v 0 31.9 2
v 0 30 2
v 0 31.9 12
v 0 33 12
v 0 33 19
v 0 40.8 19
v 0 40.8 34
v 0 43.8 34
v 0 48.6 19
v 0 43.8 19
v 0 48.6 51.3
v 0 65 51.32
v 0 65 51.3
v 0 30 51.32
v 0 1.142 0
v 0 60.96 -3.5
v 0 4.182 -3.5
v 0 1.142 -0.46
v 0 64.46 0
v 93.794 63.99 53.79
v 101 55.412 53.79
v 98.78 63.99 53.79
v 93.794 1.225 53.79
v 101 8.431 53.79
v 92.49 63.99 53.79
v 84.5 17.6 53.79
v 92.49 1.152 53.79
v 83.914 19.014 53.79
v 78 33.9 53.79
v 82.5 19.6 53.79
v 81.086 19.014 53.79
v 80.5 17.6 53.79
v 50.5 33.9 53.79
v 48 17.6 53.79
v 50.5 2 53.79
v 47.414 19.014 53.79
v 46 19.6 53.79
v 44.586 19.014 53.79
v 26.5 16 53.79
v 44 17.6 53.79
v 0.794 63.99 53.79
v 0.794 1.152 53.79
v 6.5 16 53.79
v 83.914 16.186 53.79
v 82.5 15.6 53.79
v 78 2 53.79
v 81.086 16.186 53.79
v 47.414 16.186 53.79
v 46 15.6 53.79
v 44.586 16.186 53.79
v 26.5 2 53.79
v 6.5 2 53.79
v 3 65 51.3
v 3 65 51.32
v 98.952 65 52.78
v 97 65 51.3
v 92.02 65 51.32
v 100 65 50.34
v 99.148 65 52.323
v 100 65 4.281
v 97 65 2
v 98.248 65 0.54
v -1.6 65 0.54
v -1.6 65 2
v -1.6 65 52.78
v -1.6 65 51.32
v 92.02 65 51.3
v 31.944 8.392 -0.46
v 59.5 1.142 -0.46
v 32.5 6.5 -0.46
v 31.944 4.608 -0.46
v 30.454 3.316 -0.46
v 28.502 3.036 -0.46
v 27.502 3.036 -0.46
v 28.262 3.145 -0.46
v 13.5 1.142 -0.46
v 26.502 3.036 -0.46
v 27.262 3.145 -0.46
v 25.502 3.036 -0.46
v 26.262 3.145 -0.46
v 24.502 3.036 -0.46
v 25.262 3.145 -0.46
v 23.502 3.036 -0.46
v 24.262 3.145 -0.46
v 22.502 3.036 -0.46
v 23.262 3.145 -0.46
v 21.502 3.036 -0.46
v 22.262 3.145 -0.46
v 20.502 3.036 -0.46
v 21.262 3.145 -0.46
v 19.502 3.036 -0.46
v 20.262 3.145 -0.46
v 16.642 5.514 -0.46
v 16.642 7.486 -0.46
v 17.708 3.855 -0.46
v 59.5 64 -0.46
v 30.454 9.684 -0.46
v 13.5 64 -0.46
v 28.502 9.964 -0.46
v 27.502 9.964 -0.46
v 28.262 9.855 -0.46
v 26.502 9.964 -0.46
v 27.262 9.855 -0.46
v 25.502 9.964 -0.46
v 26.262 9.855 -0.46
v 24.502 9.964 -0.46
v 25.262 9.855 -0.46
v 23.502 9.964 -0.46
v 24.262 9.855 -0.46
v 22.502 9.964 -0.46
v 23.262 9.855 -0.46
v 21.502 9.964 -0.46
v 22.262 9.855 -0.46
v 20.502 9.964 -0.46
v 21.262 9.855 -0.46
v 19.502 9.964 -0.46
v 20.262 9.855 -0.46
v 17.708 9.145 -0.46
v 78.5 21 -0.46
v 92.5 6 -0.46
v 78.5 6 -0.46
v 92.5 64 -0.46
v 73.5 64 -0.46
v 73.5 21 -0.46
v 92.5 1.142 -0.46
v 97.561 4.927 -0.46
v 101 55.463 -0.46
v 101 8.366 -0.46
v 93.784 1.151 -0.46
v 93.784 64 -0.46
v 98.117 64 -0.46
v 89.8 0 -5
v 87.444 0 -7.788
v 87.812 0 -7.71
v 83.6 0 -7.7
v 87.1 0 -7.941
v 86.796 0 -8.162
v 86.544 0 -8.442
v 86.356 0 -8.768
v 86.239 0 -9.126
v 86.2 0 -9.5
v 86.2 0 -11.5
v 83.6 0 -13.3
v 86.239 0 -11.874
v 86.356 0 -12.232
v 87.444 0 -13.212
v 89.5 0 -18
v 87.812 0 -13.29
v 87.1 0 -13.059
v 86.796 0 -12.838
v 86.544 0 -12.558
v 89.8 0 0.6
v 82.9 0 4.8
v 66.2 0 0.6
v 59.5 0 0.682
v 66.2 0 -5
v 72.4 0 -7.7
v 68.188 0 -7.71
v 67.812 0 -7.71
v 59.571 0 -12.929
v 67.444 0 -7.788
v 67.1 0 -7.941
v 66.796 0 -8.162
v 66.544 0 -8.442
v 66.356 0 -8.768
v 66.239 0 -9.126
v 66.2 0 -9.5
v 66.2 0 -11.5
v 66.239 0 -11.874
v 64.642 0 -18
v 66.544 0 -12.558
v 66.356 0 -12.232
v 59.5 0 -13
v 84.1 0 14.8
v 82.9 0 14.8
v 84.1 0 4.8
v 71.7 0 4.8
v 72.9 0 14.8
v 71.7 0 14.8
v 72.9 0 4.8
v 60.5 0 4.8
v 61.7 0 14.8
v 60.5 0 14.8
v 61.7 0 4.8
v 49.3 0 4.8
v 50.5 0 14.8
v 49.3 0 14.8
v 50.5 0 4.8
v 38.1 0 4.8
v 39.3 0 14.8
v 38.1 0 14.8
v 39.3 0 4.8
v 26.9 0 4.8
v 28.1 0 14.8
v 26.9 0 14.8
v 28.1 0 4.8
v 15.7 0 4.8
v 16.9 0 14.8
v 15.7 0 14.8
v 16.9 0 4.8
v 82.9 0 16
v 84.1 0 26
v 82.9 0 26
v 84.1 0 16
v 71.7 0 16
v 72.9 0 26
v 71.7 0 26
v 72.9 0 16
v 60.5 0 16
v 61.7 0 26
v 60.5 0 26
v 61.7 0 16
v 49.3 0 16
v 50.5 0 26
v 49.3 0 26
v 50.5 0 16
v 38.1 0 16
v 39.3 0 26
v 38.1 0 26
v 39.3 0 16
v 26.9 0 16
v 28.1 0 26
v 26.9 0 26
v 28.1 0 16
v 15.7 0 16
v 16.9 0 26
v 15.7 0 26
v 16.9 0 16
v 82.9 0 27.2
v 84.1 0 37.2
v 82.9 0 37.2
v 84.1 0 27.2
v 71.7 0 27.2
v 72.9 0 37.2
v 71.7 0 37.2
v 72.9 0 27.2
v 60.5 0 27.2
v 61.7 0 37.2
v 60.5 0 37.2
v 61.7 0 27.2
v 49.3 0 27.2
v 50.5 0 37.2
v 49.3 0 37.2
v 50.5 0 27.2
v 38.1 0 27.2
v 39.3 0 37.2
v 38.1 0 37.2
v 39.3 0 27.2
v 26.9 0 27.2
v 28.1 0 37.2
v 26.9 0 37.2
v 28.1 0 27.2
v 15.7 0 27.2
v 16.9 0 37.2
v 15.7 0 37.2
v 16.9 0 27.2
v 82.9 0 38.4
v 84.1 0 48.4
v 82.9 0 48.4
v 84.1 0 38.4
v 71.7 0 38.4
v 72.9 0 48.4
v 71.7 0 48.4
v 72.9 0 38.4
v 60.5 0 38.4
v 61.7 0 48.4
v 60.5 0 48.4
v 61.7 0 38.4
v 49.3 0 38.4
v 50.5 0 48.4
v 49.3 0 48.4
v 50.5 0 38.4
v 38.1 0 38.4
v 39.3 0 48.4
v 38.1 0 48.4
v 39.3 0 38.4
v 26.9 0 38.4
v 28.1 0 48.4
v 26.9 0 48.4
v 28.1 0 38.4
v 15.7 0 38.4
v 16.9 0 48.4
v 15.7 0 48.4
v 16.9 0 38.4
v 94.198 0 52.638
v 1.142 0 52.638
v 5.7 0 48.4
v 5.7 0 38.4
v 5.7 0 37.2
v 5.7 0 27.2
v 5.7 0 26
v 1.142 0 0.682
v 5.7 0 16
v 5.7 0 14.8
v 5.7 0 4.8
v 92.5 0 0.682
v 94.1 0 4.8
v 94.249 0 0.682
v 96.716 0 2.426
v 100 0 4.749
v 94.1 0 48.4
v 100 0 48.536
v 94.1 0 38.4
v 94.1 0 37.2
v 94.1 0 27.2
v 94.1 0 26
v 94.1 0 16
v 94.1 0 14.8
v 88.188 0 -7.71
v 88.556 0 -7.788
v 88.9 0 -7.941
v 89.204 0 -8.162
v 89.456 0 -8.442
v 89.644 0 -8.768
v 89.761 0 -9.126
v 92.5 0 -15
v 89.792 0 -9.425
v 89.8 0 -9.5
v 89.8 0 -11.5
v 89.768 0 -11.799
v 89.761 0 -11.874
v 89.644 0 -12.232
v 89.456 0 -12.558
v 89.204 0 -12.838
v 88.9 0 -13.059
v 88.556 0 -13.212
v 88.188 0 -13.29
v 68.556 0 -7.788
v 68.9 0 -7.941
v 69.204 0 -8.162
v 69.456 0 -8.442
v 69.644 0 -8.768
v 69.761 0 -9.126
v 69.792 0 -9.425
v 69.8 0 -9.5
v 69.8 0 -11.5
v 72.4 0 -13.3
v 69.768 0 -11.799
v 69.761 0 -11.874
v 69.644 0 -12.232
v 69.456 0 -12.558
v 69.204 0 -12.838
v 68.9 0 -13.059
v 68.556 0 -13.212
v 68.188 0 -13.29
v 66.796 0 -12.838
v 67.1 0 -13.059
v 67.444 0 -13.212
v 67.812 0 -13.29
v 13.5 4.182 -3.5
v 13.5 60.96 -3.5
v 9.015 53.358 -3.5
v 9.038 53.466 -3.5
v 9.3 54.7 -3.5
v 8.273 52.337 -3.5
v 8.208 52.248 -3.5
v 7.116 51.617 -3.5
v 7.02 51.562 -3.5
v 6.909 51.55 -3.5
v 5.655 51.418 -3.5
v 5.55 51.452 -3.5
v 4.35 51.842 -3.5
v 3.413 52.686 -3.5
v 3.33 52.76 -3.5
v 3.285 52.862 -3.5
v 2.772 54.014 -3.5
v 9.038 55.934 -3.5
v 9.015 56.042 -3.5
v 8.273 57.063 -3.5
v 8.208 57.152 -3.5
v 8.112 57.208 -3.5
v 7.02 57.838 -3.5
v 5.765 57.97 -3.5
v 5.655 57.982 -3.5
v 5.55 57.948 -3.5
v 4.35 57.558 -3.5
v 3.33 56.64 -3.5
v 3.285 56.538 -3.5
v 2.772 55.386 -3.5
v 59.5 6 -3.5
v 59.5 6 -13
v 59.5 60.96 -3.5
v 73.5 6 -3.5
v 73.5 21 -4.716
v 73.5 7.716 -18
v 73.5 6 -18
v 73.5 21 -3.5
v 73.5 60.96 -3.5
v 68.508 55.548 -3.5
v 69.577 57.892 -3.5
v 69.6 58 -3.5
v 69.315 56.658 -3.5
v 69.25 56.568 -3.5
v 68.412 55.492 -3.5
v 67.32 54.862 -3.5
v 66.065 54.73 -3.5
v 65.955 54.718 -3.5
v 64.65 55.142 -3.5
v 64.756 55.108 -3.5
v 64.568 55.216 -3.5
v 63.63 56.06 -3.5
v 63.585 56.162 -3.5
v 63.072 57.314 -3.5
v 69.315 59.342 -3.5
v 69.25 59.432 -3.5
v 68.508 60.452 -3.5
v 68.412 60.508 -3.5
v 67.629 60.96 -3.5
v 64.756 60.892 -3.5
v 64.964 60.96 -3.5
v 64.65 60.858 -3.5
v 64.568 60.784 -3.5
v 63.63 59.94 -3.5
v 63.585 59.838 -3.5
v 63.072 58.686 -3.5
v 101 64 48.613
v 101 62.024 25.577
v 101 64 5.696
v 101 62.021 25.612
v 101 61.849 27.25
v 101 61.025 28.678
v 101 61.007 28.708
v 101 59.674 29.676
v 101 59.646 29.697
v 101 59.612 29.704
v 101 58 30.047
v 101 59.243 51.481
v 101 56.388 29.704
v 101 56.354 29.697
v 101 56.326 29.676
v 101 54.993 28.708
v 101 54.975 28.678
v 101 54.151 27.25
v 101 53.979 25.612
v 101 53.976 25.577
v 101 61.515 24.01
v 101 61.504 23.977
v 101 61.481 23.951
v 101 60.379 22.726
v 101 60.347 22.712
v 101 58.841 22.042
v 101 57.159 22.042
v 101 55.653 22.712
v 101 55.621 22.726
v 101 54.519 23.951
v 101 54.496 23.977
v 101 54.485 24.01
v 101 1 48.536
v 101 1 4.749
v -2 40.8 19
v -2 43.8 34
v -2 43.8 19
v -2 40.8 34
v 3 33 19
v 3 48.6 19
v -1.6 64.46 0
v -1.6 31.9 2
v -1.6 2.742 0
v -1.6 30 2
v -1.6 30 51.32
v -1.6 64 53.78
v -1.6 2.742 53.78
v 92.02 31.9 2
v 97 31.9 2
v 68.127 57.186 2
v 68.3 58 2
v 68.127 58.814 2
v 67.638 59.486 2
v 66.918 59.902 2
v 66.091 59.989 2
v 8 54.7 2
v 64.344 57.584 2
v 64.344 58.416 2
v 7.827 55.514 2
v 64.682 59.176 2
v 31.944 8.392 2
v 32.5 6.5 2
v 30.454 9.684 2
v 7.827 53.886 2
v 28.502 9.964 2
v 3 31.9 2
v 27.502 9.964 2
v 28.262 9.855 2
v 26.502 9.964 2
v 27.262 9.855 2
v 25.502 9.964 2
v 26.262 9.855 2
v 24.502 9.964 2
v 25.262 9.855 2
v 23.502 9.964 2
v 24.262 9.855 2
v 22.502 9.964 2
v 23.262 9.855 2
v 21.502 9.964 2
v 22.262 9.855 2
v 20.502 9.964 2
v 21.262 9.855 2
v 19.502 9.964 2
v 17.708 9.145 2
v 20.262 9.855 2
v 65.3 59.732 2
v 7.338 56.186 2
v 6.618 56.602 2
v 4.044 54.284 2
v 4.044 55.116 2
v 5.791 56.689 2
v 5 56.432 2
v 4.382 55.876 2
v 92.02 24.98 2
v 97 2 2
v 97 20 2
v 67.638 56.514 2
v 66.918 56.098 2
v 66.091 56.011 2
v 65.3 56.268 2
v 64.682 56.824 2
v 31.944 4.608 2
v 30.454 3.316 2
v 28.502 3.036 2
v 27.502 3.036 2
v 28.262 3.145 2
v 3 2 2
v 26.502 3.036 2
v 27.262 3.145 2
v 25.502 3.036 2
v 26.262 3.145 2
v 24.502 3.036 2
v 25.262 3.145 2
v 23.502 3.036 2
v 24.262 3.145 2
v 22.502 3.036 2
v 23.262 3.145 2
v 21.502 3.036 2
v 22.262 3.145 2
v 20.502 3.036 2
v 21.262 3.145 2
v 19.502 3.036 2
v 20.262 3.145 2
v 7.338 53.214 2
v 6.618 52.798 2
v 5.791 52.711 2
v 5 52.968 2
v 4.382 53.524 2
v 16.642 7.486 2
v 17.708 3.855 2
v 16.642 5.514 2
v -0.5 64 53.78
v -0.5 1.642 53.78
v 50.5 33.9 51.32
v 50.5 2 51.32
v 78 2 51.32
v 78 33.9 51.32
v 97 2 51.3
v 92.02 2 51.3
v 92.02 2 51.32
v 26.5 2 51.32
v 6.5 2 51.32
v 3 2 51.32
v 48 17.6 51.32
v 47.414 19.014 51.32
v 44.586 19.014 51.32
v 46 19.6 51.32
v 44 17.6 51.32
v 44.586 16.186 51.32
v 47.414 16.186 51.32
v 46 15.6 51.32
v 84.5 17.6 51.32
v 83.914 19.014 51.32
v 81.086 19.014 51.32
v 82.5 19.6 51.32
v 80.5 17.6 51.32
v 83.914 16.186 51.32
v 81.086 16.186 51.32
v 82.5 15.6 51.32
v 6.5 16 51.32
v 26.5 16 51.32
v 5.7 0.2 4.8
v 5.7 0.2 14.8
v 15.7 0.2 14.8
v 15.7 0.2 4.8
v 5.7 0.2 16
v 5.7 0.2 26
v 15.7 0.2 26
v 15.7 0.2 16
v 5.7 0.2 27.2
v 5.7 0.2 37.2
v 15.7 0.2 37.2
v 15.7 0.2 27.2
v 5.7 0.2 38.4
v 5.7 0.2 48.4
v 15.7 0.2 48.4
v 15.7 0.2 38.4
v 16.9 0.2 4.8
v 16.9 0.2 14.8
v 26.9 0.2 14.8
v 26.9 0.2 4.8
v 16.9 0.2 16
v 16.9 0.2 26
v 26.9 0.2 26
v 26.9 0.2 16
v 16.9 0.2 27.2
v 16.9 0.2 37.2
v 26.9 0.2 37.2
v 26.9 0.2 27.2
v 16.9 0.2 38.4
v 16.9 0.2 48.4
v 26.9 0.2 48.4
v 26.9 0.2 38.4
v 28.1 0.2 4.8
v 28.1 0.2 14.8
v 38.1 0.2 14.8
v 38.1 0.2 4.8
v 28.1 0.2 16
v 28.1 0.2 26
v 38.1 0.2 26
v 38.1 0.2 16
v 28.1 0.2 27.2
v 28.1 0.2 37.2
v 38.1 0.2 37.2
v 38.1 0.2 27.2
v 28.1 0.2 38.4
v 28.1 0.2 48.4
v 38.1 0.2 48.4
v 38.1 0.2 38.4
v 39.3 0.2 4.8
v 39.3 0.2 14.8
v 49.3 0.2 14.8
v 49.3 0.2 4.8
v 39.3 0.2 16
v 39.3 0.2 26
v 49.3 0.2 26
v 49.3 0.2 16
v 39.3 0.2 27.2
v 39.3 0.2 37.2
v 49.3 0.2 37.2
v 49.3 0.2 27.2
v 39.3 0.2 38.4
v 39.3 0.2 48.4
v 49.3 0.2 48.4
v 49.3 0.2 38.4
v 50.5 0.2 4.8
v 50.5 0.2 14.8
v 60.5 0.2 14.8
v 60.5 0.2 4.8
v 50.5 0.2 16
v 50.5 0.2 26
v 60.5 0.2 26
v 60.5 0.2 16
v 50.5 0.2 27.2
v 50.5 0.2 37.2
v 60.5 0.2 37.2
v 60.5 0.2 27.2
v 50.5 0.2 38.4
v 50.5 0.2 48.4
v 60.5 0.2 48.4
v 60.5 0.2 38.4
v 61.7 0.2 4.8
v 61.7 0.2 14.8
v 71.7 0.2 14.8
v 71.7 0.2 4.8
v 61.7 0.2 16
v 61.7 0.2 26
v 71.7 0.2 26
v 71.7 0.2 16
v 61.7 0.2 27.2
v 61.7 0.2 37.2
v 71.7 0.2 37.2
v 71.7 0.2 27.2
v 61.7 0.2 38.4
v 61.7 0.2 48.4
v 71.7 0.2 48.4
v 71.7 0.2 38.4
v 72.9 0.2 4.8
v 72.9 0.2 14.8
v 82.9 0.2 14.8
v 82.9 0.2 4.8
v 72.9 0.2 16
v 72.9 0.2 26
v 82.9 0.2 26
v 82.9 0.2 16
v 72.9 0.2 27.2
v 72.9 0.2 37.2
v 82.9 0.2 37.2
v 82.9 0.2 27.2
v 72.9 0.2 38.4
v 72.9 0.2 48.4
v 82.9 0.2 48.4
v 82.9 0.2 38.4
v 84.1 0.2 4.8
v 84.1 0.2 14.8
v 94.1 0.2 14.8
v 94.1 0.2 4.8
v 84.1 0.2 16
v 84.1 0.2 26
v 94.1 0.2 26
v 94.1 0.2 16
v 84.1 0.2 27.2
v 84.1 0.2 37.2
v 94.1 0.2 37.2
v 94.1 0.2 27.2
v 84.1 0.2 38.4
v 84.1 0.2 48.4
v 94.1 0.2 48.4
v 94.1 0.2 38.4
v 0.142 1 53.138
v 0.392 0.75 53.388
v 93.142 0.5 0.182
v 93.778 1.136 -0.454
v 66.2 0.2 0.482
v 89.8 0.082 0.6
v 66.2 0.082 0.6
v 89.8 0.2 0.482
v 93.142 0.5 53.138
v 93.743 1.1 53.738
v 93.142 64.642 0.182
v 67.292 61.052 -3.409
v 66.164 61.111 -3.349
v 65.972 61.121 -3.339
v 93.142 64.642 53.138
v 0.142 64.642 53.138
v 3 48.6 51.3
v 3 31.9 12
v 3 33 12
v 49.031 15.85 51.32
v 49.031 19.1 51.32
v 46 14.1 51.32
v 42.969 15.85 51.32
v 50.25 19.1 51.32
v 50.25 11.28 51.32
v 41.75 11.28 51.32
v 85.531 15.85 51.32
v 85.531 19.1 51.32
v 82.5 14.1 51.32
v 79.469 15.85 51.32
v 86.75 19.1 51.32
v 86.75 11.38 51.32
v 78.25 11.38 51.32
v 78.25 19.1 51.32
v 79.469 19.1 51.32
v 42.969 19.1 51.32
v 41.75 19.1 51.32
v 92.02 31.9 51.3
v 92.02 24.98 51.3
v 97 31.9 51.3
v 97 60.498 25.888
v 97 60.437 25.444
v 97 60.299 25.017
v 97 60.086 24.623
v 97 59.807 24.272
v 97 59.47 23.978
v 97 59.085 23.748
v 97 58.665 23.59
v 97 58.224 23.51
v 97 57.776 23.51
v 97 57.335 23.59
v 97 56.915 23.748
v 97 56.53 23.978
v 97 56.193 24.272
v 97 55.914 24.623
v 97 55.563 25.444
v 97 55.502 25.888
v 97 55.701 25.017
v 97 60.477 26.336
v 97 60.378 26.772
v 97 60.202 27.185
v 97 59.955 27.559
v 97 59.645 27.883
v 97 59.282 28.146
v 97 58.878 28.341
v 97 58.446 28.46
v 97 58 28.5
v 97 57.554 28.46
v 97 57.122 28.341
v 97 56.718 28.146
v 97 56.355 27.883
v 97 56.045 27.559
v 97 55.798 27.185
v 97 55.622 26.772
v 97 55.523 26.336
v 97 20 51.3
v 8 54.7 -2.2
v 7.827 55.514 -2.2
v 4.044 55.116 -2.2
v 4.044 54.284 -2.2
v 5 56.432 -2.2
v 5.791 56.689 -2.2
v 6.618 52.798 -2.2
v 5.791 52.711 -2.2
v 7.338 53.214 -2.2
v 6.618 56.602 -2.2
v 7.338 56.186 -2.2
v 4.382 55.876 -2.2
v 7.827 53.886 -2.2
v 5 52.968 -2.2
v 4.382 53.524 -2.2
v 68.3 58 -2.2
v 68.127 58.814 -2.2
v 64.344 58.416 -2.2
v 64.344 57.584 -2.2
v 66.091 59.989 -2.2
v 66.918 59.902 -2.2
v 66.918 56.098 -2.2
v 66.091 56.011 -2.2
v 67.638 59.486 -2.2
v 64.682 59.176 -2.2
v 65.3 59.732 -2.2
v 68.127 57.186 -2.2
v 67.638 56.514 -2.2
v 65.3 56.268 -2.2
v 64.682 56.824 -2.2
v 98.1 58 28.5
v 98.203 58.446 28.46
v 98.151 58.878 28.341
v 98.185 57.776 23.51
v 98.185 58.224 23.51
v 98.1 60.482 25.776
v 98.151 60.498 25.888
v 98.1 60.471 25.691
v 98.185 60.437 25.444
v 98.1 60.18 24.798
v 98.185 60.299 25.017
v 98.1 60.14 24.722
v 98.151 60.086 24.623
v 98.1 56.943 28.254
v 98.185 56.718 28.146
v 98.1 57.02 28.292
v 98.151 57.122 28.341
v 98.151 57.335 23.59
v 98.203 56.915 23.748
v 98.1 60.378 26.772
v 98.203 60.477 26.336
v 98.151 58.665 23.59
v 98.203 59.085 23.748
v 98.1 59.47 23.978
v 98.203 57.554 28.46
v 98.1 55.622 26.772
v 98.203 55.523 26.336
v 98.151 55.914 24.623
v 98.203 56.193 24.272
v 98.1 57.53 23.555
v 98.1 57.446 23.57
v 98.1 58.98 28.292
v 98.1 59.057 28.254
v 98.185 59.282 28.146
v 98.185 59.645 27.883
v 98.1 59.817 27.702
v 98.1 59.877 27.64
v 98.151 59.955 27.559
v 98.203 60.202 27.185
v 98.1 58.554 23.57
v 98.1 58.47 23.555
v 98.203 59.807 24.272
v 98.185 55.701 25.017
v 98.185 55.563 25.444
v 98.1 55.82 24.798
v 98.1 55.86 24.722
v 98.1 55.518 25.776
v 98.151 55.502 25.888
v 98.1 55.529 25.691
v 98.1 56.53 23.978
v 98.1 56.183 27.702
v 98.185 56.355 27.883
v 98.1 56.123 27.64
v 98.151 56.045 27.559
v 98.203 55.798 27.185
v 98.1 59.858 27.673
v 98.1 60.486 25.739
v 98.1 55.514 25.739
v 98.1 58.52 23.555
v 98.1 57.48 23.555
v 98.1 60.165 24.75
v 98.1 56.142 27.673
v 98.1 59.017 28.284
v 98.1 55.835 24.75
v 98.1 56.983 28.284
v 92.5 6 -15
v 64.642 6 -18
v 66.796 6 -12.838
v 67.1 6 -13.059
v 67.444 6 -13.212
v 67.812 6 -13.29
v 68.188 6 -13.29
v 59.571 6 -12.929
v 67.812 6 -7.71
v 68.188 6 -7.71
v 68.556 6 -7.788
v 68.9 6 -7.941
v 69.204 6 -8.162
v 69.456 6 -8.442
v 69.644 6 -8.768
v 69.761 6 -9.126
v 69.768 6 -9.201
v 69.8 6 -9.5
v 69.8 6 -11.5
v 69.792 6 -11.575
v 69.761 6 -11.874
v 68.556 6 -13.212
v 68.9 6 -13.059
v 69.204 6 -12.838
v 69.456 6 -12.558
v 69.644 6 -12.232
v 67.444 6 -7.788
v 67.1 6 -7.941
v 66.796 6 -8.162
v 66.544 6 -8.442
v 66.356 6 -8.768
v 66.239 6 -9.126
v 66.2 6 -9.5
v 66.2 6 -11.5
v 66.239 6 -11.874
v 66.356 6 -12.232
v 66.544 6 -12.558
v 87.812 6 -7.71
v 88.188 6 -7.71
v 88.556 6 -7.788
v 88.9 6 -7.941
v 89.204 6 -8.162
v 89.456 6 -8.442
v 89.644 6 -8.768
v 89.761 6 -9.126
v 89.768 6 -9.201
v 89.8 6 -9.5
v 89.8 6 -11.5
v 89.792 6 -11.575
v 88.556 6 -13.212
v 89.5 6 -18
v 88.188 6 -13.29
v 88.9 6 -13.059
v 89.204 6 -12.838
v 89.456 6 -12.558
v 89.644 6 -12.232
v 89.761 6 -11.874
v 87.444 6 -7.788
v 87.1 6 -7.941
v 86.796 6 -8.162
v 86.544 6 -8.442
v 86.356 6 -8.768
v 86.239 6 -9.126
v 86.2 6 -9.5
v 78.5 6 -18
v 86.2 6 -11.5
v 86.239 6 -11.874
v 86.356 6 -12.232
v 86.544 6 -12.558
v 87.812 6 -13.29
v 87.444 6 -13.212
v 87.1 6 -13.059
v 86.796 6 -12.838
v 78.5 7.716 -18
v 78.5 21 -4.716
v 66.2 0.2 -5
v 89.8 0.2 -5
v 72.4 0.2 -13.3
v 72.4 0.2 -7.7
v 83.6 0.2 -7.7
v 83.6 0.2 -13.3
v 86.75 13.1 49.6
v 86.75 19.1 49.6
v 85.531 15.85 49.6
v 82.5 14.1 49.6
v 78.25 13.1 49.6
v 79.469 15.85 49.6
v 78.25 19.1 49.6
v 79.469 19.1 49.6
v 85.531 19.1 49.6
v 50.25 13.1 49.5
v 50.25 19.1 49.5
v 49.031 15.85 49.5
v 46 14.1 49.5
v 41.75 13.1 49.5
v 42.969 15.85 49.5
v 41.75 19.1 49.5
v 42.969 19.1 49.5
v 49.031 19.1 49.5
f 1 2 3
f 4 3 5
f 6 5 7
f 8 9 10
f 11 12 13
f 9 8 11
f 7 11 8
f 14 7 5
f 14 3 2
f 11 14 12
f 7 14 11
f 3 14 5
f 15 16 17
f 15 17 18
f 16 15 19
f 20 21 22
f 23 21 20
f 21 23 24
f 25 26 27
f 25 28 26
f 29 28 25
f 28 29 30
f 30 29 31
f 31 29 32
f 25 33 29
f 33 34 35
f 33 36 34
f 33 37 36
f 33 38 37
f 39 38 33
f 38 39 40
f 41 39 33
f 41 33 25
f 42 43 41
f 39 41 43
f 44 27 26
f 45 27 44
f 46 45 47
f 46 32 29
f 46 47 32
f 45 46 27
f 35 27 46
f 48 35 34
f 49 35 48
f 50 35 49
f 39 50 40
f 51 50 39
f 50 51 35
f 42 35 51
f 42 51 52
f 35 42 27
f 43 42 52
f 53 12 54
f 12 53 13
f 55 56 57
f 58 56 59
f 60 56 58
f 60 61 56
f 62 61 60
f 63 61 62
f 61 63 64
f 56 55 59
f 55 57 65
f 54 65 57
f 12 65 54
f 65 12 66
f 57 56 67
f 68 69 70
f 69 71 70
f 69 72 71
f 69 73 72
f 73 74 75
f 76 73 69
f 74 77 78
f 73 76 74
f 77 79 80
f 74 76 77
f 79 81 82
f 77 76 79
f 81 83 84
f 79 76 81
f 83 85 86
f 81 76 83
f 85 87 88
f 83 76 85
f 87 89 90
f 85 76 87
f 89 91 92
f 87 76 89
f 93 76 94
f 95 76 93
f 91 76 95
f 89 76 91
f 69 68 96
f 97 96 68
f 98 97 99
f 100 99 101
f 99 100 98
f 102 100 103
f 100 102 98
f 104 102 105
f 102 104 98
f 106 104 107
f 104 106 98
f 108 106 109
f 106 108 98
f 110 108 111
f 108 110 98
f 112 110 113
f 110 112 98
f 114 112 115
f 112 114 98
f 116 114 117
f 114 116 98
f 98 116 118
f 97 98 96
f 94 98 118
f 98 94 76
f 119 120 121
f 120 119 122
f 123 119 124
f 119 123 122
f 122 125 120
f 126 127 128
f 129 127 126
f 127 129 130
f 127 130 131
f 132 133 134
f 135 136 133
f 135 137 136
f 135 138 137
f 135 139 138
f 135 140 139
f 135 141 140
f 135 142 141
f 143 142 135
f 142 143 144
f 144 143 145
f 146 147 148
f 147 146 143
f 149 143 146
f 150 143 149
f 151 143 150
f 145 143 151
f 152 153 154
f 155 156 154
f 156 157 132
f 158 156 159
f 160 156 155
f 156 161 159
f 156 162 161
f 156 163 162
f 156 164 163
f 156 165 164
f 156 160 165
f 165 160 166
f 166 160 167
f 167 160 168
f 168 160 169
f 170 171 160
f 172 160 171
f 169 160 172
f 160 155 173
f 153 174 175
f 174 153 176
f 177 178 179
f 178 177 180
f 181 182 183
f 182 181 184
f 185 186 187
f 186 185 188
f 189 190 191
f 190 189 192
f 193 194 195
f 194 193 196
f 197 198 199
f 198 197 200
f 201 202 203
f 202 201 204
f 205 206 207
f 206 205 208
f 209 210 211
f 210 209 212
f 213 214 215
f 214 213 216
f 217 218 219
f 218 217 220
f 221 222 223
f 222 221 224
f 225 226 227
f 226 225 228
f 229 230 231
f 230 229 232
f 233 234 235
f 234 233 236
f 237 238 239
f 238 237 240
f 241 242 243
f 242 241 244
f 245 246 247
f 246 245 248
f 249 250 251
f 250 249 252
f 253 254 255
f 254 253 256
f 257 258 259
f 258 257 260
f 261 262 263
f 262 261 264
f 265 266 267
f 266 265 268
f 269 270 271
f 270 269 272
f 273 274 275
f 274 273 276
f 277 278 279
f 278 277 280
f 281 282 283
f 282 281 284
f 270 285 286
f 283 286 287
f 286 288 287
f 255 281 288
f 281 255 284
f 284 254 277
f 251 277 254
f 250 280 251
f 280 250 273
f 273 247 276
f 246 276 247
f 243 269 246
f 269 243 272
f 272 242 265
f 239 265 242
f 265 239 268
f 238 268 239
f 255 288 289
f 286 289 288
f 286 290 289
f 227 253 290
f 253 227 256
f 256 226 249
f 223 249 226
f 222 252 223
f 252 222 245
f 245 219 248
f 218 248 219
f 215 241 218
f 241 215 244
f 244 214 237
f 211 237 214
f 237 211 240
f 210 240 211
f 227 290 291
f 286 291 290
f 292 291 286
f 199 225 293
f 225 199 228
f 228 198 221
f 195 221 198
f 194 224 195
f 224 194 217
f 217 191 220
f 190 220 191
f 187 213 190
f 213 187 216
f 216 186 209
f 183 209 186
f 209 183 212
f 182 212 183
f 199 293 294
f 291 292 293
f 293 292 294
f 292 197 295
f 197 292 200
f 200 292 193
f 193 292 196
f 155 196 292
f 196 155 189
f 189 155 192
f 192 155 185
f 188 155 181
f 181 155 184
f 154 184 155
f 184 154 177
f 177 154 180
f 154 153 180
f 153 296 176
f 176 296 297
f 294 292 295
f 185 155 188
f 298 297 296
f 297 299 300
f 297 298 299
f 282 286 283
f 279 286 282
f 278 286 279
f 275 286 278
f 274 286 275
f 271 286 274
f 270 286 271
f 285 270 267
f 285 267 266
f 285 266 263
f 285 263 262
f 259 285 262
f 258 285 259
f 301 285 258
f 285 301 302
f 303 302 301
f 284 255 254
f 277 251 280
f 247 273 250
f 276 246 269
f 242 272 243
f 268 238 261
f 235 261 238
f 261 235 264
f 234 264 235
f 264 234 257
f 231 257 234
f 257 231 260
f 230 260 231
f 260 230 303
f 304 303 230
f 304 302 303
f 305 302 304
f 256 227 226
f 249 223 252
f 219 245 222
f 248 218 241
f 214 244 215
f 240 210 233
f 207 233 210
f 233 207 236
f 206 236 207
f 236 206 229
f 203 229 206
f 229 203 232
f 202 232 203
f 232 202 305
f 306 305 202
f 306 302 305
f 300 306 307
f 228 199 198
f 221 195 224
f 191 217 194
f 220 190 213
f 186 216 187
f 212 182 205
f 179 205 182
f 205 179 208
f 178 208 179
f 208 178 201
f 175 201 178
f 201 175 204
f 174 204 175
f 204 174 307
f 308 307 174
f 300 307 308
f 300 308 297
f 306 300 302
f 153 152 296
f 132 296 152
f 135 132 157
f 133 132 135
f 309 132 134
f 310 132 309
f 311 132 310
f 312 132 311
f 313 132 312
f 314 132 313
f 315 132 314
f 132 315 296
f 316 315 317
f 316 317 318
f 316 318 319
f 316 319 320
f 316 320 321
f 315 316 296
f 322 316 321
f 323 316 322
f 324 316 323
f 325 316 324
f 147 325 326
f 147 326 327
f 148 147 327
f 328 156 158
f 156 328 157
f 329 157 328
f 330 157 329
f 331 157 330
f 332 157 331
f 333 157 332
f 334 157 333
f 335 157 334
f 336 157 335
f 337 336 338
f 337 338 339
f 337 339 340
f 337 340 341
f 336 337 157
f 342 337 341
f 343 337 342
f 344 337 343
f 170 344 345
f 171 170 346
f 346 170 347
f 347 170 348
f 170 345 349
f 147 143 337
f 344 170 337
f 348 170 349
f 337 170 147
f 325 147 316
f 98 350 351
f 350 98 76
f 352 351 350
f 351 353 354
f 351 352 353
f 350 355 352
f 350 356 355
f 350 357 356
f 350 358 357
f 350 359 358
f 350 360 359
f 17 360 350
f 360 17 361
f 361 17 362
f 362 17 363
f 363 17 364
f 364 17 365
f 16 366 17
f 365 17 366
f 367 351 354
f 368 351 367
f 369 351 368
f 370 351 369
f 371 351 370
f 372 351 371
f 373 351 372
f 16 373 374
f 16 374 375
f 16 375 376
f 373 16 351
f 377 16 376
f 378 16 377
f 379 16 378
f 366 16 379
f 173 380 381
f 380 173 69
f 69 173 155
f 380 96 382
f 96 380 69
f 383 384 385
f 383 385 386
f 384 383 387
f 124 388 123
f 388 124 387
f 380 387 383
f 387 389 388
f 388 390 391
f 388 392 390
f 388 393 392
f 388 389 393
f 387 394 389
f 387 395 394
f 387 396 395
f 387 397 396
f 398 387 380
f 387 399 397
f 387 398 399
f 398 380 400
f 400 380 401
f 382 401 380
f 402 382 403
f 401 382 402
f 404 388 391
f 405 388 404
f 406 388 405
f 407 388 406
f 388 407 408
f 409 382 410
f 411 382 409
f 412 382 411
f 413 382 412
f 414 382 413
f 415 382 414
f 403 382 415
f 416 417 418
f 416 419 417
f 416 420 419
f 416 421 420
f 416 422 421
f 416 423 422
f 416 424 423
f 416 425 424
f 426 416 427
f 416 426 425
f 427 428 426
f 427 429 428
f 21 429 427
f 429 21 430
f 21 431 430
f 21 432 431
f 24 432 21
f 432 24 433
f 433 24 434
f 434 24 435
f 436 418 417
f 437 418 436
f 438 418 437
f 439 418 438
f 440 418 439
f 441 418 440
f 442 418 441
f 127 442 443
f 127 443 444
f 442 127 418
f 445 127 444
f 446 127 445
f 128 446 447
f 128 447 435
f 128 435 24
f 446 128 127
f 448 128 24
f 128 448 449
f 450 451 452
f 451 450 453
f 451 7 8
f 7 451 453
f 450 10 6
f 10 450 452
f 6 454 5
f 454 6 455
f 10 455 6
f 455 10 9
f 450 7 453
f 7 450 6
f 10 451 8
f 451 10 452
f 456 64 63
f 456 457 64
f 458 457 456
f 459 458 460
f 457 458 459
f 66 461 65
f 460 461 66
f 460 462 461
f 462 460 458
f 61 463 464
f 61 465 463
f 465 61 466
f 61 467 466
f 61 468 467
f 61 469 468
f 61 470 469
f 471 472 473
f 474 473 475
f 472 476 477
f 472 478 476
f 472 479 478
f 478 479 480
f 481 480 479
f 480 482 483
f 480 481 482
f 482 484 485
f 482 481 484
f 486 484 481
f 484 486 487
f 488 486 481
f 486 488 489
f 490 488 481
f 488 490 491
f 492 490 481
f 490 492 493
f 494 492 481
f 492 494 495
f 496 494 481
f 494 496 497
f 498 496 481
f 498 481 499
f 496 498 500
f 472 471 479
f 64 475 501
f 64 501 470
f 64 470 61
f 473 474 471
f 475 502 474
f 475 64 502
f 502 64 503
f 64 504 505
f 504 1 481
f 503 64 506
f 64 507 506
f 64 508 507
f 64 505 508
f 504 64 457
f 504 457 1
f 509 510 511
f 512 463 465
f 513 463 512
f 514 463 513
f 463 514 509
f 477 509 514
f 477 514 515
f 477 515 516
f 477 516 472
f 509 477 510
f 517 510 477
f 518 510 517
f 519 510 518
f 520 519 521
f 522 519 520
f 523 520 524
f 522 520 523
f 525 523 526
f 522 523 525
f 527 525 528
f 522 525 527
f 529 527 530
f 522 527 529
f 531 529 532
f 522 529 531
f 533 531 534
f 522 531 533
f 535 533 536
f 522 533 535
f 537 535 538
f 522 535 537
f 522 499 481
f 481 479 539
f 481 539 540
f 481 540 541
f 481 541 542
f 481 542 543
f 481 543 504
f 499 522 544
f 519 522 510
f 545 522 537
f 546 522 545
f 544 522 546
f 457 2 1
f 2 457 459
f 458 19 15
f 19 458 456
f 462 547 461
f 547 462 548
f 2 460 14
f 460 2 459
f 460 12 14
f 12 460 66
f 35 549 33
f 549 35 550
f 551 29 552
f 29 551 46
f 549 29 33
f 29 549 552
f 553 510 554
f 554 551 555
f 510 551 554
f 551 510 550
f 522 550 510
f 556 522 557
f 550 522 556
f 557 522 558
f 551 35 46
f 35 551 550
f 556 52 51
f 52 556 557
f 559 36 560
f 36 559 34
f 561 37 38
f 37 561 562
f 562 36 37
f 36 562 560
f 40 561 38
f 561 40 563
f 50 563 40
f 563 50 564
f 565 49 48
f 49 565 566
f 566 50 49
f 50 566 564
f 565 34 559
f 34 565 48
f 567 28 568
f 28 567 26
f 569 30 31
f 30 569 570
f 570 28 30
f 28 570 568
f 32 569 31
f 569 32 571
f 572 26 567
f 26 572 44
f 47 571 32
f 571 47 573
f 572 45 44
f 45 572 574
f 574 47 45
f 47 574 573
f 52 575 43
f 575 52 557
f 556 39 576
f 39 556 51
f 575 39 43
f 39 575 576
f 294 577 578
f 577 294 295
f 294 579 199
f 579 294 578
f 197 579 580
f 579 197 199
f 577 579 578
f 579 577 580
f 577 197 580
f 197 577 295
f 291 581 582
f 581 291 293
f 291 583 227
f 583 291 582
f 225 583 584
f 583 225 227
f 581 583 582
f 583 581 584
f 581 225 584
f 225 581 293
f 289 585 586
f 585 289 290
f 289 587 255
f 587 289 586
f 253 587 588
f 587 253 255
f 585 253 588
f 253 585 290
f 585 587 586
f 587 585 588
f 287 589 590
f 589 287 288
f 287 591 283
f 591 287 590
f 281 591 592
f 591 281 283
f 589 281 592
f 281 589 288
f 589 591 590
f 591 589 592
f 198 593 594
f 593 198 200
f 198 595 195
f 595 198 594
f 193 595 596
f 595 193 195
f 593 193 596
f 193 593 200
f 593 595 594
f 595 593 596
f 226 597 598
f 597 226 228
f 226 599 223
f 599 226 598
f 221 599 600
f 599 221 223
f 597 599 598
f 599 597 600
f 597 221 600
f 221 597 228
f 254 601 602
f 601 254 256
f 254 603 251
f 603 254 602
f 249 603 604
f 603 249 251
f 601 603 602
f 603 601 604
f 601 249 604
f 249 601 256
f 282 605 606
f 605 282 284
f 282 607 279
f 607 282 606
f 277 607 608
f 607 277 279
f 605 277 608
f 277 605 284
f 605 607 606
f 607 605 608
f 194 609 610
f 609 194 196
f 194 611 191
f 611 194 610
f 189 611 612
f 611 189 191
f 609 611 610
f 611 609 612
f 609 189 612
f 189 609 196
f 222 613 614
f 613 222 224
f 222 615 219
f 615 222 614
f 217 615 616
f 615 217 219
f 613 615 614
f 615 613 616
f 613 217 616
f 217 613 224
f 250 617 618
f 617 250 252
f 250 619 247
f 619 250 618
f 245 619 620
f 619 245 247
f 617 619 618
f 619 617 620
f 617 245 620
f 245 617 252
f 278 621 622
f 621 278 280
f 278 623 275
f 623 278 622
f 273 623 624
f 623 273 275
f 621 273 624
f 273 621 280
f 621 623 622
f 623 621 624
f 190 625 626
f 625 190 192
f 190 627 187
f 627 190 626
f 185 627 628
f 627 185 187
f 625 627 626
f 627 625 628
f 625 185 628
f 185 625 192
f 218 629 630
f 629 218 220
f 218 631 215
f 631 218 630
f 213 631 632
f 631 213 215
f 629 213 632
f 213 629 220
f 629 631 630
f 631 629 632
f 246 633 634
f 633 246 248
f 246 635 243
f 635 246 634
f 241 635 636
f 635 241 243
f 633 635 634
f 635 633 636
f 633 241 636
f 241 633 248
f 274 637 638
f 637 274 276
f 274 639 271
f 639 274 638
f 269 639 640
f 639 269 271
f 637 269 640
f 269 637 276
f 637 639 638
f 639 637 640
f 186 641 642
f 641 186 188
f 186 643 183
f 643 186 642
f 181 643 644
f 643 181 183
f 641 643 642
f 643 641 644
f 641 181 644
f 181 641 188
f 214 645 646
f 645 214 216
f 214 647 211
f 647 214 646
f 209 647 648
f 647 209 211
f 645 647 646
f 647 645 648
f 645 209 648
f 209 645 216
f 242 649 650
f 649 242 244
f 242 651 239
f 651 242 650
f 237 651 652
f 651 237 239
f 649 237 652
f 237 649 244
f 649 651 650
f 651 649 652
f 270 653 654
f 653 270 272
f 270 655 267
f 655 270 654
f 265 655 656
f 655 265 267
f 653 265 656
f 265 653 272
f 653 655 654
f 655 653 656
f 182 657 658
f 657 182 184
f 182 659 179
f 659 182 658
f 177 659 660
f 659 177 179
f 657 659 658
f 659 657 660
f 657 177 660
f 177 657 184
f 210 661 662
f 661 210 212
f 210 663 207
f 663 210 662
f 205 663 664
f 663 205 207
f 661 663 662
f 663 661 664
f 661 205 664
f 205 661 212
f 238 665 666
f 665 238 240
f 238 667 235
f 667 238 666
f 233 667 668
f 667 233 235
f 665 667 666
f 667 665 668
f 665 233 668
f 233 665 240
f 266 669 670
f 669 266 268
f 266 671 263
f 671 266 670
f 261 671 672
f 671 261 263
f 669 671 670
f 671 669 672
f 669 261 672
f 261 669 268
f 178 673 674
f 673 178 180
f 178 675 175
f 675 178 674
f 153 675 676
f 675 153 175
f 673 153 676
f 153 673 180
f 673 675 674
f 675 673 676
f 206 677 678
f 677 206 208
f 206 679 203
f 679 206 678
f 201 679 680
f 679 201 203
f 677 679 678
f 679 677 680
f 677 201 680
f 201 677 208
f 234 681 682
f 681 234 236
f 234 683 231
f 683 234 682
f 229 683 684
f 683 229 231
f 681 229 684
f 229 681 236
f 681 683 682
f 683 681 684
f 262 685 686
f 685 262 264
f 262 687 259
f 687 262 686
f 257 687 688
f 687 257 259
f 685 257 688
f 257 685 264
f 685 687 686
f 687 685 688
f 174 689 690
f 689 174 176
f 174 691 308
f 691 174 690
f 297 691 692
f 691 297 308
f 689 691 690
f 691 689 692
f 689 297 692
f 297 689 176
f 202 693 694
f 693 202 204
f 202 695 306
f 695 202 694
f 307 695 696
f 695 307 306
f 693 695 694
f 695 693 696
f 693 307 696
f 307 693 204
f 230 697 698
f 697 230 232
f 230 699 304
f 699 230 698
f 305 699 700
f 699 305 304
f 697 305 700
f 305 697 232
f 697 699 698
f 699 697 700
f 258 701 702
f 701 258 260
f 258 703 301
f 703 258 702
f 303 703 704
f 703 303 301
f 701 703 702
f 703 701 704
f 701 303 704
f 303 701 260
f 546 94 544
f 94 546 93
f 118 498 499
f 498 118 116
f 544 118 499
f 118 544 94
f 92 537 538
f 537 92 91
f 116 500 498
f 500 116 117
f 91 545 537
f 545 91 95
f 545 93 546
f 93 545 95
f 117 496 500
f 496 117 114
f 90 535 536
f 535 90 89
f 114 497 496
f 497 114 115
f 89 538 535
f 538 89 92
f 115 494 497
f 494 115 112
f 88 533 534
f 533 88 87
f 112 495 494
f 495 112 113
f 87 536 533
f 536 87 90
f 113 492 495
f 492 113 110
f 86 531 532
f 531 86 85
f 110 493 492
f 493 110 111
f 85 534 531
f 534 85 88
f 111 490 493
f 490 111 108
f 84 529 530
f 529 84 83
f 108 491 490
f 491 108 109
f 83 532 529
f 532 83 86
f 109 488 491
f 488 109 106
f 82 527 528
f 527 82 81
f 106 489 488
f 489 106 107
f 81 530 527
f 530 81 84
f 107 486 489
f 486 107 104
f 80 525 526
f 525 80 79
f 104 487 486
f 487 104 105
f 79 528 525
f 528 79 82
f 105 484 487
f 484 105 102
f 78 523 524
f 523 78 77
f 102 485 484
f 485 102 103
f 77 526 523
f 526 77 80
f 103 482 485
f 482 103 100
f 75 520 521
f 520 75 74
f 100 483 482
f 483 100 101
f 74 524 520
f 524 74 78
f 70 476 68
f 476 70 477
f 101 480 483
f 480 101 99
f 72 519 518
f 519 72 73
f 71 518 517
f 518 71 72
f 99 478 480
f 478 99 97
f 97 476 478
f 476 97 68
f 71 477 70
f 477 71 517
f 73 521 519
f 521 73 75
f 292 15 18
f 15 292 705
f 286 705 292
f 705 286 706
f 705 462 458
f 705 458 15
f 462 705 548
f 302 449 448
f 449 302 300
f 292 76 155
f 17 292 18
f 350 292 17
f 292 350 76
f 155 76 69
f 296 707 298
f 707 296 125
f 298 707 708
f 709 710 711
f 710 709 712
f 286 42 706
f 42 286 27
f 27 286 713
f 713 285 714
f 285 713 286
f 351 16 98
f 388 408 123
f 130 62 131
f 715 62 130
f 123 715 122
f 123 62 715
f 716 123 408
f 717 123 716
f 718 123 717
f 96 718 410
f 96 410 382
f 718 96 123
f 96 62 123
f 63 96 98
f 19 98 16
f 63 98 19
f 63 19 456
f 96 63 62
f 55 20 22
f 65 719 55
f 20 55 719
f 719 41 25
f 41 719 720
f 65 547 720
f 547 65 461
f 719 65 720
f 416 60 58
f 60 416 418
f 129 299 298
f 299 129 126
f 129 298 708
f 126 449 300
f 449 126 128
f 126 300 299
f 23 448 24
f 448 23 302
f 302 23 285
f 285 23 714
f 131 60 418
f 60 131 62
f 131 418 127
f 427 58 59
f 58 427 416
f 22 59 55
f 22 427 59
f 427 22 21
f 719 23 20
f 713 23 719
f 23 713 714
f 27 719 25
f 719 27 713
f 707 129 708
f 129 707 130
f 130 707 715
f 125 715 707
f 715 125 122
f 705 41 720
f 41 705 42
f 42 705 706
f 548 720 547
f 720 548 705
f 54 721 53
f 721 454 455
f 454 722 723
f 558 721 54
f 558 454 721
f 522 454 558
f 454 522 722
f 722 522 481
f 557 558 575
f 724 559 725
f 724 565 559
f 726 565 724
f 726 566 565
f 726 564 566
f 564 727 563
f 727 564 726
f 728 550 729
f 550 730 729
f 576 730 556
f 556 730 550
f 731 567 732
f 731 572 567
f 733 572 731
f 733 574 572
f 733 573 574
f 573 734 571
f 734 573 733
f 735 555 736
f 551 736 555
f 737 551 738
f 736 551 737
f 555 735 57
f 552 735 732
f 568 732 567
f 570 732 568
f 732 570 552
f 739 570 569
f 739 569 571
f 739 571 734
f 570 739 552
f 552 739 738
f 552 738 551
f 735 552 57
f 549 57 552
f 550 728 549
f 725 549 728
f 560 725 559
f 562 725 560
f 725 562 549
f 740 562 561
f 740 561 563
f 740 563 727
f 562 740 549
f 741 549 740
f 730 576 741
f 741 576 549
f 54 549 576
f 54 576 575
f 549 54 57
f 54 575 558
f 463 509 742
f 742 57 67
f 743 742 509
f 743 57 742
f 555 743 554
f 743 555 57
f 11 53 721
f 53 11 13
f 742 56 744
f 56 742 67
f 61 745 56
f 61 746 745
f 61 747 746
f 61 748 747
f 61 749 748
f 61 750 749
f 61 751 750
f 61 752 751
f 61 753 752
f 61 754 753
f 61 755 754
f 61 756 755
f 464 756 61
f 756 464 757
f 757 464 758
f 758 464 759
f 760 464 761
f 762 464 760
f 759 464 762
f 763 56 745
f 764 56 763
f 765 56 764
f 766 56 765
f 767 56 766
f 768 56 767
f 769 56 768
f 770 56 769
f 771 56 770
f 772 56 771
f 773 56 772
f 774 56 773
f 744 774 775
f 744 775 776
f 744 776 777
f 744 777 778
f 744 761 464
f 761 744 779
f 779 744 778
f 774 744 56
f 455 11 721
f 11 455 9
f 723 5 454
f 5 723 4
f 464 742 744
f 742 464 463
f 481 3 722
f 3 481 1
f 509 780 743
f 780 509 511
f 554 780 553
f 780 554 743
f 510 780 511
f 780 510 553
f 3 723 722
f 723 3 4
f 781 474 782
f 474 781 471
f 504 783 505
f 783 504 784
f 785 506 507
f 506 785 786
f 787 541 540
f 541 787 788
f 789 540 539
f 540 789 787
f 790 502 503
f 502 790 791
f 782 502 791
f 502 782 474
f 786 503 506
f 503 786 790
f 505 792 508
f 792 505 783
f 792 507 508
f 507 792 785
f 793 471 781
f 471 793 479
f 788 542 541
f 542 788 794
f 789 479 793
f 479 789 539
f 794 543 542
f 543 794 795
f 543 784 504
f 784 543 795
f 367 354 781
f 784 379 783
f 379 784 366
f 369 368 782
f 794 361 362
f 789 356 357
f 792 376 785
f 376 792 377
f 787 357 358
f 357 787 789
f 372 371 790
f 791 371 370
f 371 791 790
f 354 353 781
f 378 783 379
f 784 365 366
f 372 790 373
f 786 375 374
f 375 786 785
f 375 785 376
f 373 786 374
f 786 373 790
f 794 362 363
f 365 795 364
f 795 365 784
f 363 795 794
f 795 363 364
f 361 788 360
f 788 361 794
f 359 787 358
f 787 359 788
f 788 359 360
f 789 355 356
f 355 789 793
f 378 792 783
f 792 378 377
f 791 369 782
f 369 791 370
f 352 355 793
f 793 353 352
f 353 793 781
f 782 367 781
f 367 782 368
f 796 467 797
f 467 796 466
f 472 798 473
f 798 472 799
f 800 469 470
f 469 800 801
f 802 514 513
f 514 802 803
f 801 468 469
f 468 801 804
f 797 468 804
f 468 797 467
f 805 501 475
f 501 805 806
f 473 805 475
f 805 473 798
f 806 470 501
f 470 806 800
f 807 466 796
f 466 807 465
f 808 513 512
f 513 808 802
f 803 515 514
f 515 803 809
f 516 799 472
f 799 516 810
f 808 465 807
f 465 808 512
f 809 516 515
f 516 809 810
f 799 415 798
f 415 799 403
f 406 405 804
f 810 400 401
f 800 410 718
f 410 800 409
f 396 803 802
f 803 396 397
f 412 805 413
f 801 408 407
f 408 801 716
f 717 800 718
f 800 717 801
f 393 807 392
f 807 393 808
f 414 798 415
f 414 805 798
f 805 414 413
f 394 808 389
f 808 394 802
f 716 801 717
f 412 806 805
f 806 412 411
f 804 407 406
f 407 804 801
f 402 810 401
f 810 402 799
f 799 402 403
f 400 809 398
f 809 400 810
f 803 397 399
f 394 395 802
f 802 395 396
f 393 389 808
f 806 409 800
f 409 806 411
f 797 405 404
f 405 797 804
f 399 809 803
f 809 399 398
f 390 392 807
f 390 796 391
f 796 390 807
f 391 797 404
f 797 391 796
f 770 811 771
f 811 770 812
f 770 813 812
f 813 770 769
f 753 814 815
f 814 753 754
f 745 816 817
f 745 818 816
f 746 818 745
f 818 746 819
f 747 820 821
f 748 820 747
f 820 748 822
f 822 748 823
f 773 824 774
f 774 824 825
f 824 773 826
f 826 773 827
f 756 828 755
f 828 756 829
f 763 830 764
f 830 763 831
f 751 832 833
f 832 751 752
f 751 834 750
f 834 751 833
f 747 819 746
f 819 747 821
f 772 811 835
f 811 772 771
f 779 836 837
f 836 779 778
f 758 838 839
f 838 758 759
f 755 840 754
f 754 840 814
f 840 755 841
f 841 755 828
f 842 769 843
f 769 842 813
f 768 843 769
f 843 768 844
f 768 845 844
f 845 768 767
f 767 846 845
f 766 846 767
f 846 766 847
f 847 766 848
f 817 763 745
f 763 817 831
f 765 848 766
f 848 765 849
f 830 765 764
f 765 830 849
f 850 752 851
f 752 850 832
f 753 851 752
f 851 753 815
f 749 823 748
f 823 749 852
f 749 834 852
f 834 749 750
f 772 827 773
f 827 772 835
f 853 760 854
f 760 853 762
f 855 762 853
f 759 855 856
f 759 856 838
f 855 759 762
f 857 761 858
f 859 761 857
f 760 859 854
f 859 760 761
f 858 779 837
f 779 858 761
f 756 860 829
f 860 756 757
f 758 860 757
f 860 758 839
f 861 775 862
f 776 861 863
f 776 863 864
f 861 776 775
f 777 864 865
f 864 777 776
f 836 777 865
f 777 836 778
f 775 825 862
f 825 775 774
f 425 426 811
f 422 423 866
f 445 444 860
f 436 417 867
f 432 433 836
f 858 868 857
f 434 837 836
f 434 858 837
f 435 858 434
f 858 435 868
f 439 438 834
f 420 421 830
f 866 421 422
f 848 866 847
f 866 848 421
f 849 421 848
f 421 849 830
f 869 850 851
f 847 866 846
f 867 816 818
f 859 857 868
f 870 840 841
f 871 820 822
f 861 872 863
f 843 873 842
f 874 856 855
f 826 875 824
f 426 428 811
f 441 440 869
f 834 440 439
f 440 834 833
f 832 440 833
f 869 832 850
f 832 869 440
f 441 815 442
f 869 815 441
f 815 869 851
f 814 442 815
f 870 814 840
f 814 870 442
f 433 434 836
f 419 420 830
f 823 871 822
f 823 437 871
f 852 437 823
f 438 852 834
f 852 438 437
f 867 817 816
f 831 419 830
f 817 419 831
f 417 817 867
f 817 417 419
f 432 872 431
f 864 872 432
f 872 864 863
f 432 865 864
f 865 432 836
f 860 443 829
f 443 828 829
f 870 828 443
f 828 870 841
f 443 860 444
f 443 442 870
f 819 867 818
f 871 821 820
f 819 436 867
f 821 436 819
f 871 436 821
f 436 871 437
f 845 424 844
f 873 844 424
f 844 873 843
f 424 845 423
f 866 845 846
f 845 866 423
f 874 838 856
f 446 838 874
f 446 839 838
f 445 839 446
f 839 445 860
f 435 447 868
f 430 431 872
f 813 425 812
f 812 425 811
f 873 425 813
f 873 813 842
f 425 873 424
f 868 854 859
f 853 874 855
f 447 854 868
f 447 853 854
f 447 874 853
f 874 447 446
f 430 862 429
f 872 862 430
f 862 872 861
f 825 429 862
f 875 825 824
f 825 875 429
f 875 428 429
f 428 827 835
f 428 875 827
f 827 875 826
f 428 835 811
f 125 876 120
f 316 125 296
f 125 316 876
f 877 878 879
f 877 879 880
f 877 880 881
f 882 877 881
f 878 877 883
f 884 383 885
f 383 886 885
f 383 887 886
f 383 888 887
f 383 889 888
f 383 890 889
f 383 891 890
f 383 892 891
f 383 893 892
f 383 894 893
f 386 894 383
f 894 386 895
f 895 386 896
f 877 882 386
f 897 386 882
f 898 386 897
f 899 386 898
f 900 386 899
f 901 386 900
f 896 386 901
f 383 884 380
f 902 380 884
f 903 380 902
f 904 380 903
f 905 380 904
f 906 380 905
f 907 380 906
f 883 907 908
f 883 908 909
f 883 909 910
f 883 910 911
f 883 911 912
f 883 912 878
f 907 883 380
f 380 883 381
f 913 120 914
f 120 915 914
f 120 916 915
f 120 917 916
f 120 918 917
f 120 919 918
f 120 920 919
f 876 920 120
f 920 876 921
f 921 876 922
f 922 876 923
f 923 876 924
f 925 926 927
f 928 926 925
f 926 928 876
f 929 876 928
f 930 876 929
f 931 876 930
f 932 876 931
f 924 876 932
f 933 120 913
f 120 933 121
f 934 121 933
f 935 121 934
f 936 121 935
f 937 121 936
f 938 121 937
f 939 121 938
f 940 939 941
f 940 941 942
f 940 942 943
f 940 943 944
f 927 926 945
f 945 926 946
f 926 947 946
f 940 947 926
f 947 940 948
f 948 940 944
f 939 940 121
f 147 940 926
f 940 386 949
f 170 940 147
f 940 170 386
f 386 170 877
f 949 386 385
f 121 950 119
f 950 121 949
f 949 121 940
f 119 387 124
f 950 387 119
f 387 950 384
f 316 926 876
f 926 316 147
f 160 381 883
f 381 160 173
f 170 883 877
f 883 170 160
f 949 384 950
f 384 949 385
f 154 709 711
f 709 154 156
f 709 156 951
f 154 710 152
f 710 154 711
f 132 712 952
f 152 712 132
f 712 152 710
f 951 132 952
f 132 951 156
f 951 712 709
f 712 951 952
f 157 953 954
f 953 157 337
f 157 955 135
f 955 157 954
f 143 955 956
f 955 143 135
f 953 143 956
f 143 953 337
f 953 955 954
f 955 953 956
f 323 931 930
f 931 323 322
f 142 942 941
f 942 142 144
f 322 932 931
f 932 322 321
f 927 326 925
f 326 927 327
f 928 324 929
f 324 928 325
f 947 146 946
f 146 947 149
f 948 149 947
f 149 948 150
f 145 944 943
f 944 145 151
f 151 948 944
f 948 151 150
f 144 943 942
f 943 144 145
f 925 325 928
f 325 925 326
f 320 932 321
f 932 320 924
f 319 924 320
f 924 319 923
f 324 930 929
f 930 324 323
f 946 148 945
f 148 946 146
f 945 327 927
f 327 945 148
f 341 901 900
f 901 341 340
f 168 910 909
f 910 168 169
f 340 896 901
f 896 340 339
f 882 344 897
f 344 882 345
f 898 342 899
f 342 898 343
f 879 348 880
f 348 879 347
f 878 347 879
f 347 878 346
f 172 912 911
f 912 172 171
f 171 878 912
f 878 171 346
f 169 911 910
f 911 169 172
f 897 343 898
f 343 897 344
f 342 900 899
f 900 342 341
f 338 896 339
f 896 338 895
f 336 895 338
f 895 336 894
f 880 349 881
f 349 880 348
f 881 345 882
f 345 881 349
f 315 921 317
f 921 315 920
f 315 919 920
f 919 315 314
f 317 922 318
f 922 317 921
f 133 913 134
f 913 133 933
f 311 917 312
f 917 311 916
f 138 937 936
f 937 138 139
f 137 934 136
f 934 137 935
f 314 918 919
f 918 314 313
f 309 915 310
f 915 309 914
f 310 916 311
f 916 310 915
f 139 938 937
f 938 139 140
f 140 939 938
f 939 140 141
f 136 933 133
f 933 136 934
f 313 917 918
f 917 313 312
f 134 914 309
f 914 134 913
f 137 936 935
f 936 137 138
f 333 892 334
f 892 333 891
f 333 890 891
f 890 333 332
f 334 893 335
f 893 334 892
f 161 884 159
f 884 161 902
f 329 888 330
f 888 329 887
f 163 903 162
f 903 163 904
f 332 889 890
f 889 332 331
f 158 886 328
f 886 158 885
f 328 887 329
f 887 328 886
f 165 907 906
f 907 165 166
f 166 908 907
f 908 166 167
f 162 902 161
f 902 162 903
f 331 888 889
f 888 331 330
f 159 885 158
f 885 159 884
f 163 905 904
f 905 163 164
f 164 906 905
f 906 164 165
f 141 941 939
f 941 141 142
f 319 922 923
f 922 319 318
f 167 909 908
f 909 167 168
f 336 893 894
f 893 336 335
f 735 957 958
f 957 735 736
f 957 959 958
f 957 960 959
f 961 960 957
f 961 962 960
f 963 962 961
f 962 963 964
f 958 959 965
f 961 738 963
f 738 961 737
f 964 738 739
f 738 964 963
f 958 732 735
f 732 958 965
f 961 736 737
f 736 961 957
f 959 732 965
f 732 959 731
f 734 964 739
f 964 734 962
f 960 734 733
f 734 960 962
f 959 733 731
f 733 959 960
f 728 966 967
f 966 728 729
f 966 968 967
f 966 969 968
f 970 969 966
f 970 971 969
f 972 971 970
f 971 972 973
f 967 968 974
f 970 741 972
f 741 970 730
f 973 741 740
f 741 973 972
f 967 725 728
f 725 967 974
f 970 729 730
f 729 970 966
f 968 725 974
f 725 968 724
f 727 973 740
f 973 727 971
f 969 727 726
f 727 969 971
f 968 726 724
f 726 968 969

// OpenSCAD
// PRUSA iteration3
// PSU Cover
// GNU GPL v3
// Josef Průša <iam@josefprusa.cz> and contributors
// http://www.reprap.org/wiki/Prusa_Mendel
// http://prusamendel.org

module CubeAdjust(Xdim, Zdim){
    for (x =[6:11.2:Xdim-12]){
        for (z =[6:11.2:Zdim-12]){
        
        translate([x,-0.2,z])cube([10,0.4,10]);
        }
        }
    
        
}

module nuttrap(){
    rotate([0, 180, 0]) difference(){
        union(){ 
            translate([-4.25,-7.5,0]) difference(){
            translate([0,0,0]) cube([8.5, 9, 3]);
            rotate([45,0,0]) cube([11.5,5.7,5.7]);
        }
    }
    translate([0,0, -0.2])rotate([0,0,30]) cylinder(r=3.5,h=15-1.5, $fn=6);
  }
}

module PSU_COVER()
{
difference(){
union(){
    
translate([0,0,-0.46])cube([95,50+15,54.25]); // Base

translate([0,0,-3.5])cube([14-0.5,50+15,5]); // Back pillar 1

translate([60-0.5,0,-3.5])cube([14,50+15,5]); // Back pillar 2

translate([91+4,0,-0.46])cube([6,50+15,54.25]); // Base for bracket

translate([-2,45.4-4.6,19])cube([2,3,15]); // nipple on the right


translate([-1.6,0,0])cube([1.65,65,2]); // Frame skirt 1
translate([-1.6,0,0])cube([1.65,30,53.78]); // Frame skirt 2
translate([-1.6,0,51.32])cube([1.65,65,2.46]); // Frame skirt 3
  
}


//pretty corners
translate([-11,-2,-2])rotate([0,0,-45])cube([10,10,58]);
translate([95-3+5+1,-2,-2])rotate([0,0,-45])cube([10,10,58]);

translate([-3,-9,-4.46])rotate([-45,0,0])cube([130,10,10]);
translate([-3,-12,54.78])rotate([-45,0,0])cube([130,10,10]);

translate([-3,45+15,-4.46])rotate([-45,0,0])cube([130,10,10]);
translate([-3,48+15,54.78])rotate([-45,0,0])cube([130,10,10]);

translate([95-3+3,70,-2])rotate([0,0,-45])cube([10,10,58]);


translate([95,0-10,-20])rotate([0,-45,-45])cube([20,20,20]);
translate([95,0-10,45])rotate([0,-45,-45])cube([20,20,20]);


translate([95,60,-10])rotate([-35,-45,-45])cube([20,20,20]);
translate([95,60,65])rotate([-55,48,-48])cube([20,20,20]);

translate([79,-5,67.28])rotate([0,45,0])cube([20,90,20]);

translate([79,-5,-13.96])rotate([0,45,0])cube([20,90,20]);


translate([-14,-5,67.28])rotate([0,45,0])cube([20,90,20]);

translate([3,2,2])cube([89.02,50.02+15,50.02-0.7]); // main cutout

translate([-3,50-16.4+15,2])cube([100,16.5,50-0.7]); // insert cutout

translate([-3,50-16.4-15.6+15,2])cube([10,100,17]); // right bottom cutout

translate([85+2,50-16.4-17.6+15+0.9,2])cube([10,100,50-0.7]); // left bottom cutout

translate([85+2,10,2])rotate([0,0,45]) cube([10*sqrt(2),10*sqrt(2),50-0.7]);
translate([85+2,2,2]) cube([10,18,50-0.7]);

translate([-3,50-16.4-17.6+15+0.9,2])cube([100,100,10]); //  bottom cutout

translate([5.5,0,0]){
translate([45,2,40])cube([27.5,31.9,30]); // socket cutout
translate([45-4.5,2+15.6,40])cylinder(r=2,h=50, $fn=8); // socket right hole cutout
translate([45-4.5+37-0.5,2+15.6,40])cylinder(r=2,h=50, $fn=8); // socket left hole cutout

translate([1,2,44])cube([20,14,30]); // switch cutout

translate([45-4.5+37-0.5,2+15.6,39.1]) rotate([0,0,30]) cylinder(r=3.25,h=15-2.8, $fn=6); // socket left hole cutout nuttrap
translate([45-4.5,2+15.6,39.1]) rotate([0,0,30]) cylinder(r=3.25,h=15-2.8, $fn=6); // socket left hole cutout nuttrap
}

translate([7-0.5-0.5,40-1+15+0.7,-10])cylinder(r=2,h=50,$fn=15); //  left back mounthole cutout
translate([7-0.5-0.5,40-1+15+0.7,-3.7])cylinder(r2=2, r1=3.5,h=1.5,$fn=15);

translate([67.5-0.7-0.5,43.5-1+15+0.5,-10])cylinder(r=2,h=50,$fn=15); //  right back mounthole cutout
translate([67.5-0.7-0.5,43.5-1+15+0.5,-3.7])cylinder(r2=2, r1=3.5,h=1.5,$fn=15);


translate([130,32+26,55-4-25])rotate([0,-90,0])cylinder(r=2.5,h=50,$fn=35); // Left side bracket screw hole
translate([101.1,32+26,55-4-25])rotate([0,-90,0])cylinder(r2=2.5, r1=4.1,h=3,$fn=15);
translate([-0.3,0,-1.2])CubeAdjust(102,54.25);

for(i=[0:9]){
translate([20+i,6.5,-10])cylinder(r=3.5,h=50); //  left back mounthole cutout
}


}
}

module PSU_Y_REINFORCEMENT()
{
difference()
{
    union()     // base shape
        {
            translate([ 59.5, 0, -18 ]) cube([ 33, 6, 19 ]);  // reinforcement plate
            translate([ 73.5, 5, -18 ]) cube([ 5, 16, 19 ]);  // vertical_reinforcement    
        }
    union ()    // cutouts
        {
            
            
            // corner cuts
            translate([ 87.5, -8, -20 ]) rotate([ 0, 45, 0 ]) cube([ 10, 20, 10 ]);  //corner cut
            translate([ 52.5, -8, -20 ]) rotate([ 0, 45, 0 ]) cube([ 10, 20, 10 ]);  //corner cut
            
            // angled vertical support
            translate([ 68.5, 20, -34 ]) rotate([ 45, 0, 0 ]) cube([ 15, 23, 20 ]);  //vertical reinf cutout
            
            // bottom surface cuts
            translate([ 66.2, -0.2, -5])cube([23.6, 0.4, 5.6]);
            translate([ 68 + 1.8 +2.6, -0.2, -7.7 -5.6])cube([11.2, 0.4, 5.6]);
            
            
            translate([ 88, 8, -11.5 ]) rotate([ 90, 0, 0]) cylinder( h = 10, r = 1.8, $fn=30 );  //hole A
            translate([ 68, 8, -11.5 ]) rotate([ 90, 0, 0 ]) cylinder( h = 10, r = 1.8, $fn=30 );  //hole B
            
            translate([ 88, 8, -9.5 ]) rotate([ 90, 0, 0]) cylinder( h = 10, r = 1.8, $fn=30 );  //hole A
            translate([ 68, 8, -9.5 ]) rotate([ 90, 0, 0 ]) cylinder( h = 10, r = 1.8, $fn=30 );  //hole B
            
            translate([ 86.2, -10, -11.5 ]) cube([ 3.6, 20, 2 ]);  // hole cut extension
            translate([ 66.2, -10, -11.5 ]) cube([ 3.6, 20, 2 ]);  // hole cut extension
            
            
            
        }
}
}


module FINAL_PART(){
    union()
        {
            PSU_COVER();
            PSU_Y_REINFORCEMENT();
            translate([82.5,2+15.6,39.1+13.5]) nuttrap();
            translate([46,2+15.6,39+13.5]) nuttrap();
        }   
}

FINAL_PART();
